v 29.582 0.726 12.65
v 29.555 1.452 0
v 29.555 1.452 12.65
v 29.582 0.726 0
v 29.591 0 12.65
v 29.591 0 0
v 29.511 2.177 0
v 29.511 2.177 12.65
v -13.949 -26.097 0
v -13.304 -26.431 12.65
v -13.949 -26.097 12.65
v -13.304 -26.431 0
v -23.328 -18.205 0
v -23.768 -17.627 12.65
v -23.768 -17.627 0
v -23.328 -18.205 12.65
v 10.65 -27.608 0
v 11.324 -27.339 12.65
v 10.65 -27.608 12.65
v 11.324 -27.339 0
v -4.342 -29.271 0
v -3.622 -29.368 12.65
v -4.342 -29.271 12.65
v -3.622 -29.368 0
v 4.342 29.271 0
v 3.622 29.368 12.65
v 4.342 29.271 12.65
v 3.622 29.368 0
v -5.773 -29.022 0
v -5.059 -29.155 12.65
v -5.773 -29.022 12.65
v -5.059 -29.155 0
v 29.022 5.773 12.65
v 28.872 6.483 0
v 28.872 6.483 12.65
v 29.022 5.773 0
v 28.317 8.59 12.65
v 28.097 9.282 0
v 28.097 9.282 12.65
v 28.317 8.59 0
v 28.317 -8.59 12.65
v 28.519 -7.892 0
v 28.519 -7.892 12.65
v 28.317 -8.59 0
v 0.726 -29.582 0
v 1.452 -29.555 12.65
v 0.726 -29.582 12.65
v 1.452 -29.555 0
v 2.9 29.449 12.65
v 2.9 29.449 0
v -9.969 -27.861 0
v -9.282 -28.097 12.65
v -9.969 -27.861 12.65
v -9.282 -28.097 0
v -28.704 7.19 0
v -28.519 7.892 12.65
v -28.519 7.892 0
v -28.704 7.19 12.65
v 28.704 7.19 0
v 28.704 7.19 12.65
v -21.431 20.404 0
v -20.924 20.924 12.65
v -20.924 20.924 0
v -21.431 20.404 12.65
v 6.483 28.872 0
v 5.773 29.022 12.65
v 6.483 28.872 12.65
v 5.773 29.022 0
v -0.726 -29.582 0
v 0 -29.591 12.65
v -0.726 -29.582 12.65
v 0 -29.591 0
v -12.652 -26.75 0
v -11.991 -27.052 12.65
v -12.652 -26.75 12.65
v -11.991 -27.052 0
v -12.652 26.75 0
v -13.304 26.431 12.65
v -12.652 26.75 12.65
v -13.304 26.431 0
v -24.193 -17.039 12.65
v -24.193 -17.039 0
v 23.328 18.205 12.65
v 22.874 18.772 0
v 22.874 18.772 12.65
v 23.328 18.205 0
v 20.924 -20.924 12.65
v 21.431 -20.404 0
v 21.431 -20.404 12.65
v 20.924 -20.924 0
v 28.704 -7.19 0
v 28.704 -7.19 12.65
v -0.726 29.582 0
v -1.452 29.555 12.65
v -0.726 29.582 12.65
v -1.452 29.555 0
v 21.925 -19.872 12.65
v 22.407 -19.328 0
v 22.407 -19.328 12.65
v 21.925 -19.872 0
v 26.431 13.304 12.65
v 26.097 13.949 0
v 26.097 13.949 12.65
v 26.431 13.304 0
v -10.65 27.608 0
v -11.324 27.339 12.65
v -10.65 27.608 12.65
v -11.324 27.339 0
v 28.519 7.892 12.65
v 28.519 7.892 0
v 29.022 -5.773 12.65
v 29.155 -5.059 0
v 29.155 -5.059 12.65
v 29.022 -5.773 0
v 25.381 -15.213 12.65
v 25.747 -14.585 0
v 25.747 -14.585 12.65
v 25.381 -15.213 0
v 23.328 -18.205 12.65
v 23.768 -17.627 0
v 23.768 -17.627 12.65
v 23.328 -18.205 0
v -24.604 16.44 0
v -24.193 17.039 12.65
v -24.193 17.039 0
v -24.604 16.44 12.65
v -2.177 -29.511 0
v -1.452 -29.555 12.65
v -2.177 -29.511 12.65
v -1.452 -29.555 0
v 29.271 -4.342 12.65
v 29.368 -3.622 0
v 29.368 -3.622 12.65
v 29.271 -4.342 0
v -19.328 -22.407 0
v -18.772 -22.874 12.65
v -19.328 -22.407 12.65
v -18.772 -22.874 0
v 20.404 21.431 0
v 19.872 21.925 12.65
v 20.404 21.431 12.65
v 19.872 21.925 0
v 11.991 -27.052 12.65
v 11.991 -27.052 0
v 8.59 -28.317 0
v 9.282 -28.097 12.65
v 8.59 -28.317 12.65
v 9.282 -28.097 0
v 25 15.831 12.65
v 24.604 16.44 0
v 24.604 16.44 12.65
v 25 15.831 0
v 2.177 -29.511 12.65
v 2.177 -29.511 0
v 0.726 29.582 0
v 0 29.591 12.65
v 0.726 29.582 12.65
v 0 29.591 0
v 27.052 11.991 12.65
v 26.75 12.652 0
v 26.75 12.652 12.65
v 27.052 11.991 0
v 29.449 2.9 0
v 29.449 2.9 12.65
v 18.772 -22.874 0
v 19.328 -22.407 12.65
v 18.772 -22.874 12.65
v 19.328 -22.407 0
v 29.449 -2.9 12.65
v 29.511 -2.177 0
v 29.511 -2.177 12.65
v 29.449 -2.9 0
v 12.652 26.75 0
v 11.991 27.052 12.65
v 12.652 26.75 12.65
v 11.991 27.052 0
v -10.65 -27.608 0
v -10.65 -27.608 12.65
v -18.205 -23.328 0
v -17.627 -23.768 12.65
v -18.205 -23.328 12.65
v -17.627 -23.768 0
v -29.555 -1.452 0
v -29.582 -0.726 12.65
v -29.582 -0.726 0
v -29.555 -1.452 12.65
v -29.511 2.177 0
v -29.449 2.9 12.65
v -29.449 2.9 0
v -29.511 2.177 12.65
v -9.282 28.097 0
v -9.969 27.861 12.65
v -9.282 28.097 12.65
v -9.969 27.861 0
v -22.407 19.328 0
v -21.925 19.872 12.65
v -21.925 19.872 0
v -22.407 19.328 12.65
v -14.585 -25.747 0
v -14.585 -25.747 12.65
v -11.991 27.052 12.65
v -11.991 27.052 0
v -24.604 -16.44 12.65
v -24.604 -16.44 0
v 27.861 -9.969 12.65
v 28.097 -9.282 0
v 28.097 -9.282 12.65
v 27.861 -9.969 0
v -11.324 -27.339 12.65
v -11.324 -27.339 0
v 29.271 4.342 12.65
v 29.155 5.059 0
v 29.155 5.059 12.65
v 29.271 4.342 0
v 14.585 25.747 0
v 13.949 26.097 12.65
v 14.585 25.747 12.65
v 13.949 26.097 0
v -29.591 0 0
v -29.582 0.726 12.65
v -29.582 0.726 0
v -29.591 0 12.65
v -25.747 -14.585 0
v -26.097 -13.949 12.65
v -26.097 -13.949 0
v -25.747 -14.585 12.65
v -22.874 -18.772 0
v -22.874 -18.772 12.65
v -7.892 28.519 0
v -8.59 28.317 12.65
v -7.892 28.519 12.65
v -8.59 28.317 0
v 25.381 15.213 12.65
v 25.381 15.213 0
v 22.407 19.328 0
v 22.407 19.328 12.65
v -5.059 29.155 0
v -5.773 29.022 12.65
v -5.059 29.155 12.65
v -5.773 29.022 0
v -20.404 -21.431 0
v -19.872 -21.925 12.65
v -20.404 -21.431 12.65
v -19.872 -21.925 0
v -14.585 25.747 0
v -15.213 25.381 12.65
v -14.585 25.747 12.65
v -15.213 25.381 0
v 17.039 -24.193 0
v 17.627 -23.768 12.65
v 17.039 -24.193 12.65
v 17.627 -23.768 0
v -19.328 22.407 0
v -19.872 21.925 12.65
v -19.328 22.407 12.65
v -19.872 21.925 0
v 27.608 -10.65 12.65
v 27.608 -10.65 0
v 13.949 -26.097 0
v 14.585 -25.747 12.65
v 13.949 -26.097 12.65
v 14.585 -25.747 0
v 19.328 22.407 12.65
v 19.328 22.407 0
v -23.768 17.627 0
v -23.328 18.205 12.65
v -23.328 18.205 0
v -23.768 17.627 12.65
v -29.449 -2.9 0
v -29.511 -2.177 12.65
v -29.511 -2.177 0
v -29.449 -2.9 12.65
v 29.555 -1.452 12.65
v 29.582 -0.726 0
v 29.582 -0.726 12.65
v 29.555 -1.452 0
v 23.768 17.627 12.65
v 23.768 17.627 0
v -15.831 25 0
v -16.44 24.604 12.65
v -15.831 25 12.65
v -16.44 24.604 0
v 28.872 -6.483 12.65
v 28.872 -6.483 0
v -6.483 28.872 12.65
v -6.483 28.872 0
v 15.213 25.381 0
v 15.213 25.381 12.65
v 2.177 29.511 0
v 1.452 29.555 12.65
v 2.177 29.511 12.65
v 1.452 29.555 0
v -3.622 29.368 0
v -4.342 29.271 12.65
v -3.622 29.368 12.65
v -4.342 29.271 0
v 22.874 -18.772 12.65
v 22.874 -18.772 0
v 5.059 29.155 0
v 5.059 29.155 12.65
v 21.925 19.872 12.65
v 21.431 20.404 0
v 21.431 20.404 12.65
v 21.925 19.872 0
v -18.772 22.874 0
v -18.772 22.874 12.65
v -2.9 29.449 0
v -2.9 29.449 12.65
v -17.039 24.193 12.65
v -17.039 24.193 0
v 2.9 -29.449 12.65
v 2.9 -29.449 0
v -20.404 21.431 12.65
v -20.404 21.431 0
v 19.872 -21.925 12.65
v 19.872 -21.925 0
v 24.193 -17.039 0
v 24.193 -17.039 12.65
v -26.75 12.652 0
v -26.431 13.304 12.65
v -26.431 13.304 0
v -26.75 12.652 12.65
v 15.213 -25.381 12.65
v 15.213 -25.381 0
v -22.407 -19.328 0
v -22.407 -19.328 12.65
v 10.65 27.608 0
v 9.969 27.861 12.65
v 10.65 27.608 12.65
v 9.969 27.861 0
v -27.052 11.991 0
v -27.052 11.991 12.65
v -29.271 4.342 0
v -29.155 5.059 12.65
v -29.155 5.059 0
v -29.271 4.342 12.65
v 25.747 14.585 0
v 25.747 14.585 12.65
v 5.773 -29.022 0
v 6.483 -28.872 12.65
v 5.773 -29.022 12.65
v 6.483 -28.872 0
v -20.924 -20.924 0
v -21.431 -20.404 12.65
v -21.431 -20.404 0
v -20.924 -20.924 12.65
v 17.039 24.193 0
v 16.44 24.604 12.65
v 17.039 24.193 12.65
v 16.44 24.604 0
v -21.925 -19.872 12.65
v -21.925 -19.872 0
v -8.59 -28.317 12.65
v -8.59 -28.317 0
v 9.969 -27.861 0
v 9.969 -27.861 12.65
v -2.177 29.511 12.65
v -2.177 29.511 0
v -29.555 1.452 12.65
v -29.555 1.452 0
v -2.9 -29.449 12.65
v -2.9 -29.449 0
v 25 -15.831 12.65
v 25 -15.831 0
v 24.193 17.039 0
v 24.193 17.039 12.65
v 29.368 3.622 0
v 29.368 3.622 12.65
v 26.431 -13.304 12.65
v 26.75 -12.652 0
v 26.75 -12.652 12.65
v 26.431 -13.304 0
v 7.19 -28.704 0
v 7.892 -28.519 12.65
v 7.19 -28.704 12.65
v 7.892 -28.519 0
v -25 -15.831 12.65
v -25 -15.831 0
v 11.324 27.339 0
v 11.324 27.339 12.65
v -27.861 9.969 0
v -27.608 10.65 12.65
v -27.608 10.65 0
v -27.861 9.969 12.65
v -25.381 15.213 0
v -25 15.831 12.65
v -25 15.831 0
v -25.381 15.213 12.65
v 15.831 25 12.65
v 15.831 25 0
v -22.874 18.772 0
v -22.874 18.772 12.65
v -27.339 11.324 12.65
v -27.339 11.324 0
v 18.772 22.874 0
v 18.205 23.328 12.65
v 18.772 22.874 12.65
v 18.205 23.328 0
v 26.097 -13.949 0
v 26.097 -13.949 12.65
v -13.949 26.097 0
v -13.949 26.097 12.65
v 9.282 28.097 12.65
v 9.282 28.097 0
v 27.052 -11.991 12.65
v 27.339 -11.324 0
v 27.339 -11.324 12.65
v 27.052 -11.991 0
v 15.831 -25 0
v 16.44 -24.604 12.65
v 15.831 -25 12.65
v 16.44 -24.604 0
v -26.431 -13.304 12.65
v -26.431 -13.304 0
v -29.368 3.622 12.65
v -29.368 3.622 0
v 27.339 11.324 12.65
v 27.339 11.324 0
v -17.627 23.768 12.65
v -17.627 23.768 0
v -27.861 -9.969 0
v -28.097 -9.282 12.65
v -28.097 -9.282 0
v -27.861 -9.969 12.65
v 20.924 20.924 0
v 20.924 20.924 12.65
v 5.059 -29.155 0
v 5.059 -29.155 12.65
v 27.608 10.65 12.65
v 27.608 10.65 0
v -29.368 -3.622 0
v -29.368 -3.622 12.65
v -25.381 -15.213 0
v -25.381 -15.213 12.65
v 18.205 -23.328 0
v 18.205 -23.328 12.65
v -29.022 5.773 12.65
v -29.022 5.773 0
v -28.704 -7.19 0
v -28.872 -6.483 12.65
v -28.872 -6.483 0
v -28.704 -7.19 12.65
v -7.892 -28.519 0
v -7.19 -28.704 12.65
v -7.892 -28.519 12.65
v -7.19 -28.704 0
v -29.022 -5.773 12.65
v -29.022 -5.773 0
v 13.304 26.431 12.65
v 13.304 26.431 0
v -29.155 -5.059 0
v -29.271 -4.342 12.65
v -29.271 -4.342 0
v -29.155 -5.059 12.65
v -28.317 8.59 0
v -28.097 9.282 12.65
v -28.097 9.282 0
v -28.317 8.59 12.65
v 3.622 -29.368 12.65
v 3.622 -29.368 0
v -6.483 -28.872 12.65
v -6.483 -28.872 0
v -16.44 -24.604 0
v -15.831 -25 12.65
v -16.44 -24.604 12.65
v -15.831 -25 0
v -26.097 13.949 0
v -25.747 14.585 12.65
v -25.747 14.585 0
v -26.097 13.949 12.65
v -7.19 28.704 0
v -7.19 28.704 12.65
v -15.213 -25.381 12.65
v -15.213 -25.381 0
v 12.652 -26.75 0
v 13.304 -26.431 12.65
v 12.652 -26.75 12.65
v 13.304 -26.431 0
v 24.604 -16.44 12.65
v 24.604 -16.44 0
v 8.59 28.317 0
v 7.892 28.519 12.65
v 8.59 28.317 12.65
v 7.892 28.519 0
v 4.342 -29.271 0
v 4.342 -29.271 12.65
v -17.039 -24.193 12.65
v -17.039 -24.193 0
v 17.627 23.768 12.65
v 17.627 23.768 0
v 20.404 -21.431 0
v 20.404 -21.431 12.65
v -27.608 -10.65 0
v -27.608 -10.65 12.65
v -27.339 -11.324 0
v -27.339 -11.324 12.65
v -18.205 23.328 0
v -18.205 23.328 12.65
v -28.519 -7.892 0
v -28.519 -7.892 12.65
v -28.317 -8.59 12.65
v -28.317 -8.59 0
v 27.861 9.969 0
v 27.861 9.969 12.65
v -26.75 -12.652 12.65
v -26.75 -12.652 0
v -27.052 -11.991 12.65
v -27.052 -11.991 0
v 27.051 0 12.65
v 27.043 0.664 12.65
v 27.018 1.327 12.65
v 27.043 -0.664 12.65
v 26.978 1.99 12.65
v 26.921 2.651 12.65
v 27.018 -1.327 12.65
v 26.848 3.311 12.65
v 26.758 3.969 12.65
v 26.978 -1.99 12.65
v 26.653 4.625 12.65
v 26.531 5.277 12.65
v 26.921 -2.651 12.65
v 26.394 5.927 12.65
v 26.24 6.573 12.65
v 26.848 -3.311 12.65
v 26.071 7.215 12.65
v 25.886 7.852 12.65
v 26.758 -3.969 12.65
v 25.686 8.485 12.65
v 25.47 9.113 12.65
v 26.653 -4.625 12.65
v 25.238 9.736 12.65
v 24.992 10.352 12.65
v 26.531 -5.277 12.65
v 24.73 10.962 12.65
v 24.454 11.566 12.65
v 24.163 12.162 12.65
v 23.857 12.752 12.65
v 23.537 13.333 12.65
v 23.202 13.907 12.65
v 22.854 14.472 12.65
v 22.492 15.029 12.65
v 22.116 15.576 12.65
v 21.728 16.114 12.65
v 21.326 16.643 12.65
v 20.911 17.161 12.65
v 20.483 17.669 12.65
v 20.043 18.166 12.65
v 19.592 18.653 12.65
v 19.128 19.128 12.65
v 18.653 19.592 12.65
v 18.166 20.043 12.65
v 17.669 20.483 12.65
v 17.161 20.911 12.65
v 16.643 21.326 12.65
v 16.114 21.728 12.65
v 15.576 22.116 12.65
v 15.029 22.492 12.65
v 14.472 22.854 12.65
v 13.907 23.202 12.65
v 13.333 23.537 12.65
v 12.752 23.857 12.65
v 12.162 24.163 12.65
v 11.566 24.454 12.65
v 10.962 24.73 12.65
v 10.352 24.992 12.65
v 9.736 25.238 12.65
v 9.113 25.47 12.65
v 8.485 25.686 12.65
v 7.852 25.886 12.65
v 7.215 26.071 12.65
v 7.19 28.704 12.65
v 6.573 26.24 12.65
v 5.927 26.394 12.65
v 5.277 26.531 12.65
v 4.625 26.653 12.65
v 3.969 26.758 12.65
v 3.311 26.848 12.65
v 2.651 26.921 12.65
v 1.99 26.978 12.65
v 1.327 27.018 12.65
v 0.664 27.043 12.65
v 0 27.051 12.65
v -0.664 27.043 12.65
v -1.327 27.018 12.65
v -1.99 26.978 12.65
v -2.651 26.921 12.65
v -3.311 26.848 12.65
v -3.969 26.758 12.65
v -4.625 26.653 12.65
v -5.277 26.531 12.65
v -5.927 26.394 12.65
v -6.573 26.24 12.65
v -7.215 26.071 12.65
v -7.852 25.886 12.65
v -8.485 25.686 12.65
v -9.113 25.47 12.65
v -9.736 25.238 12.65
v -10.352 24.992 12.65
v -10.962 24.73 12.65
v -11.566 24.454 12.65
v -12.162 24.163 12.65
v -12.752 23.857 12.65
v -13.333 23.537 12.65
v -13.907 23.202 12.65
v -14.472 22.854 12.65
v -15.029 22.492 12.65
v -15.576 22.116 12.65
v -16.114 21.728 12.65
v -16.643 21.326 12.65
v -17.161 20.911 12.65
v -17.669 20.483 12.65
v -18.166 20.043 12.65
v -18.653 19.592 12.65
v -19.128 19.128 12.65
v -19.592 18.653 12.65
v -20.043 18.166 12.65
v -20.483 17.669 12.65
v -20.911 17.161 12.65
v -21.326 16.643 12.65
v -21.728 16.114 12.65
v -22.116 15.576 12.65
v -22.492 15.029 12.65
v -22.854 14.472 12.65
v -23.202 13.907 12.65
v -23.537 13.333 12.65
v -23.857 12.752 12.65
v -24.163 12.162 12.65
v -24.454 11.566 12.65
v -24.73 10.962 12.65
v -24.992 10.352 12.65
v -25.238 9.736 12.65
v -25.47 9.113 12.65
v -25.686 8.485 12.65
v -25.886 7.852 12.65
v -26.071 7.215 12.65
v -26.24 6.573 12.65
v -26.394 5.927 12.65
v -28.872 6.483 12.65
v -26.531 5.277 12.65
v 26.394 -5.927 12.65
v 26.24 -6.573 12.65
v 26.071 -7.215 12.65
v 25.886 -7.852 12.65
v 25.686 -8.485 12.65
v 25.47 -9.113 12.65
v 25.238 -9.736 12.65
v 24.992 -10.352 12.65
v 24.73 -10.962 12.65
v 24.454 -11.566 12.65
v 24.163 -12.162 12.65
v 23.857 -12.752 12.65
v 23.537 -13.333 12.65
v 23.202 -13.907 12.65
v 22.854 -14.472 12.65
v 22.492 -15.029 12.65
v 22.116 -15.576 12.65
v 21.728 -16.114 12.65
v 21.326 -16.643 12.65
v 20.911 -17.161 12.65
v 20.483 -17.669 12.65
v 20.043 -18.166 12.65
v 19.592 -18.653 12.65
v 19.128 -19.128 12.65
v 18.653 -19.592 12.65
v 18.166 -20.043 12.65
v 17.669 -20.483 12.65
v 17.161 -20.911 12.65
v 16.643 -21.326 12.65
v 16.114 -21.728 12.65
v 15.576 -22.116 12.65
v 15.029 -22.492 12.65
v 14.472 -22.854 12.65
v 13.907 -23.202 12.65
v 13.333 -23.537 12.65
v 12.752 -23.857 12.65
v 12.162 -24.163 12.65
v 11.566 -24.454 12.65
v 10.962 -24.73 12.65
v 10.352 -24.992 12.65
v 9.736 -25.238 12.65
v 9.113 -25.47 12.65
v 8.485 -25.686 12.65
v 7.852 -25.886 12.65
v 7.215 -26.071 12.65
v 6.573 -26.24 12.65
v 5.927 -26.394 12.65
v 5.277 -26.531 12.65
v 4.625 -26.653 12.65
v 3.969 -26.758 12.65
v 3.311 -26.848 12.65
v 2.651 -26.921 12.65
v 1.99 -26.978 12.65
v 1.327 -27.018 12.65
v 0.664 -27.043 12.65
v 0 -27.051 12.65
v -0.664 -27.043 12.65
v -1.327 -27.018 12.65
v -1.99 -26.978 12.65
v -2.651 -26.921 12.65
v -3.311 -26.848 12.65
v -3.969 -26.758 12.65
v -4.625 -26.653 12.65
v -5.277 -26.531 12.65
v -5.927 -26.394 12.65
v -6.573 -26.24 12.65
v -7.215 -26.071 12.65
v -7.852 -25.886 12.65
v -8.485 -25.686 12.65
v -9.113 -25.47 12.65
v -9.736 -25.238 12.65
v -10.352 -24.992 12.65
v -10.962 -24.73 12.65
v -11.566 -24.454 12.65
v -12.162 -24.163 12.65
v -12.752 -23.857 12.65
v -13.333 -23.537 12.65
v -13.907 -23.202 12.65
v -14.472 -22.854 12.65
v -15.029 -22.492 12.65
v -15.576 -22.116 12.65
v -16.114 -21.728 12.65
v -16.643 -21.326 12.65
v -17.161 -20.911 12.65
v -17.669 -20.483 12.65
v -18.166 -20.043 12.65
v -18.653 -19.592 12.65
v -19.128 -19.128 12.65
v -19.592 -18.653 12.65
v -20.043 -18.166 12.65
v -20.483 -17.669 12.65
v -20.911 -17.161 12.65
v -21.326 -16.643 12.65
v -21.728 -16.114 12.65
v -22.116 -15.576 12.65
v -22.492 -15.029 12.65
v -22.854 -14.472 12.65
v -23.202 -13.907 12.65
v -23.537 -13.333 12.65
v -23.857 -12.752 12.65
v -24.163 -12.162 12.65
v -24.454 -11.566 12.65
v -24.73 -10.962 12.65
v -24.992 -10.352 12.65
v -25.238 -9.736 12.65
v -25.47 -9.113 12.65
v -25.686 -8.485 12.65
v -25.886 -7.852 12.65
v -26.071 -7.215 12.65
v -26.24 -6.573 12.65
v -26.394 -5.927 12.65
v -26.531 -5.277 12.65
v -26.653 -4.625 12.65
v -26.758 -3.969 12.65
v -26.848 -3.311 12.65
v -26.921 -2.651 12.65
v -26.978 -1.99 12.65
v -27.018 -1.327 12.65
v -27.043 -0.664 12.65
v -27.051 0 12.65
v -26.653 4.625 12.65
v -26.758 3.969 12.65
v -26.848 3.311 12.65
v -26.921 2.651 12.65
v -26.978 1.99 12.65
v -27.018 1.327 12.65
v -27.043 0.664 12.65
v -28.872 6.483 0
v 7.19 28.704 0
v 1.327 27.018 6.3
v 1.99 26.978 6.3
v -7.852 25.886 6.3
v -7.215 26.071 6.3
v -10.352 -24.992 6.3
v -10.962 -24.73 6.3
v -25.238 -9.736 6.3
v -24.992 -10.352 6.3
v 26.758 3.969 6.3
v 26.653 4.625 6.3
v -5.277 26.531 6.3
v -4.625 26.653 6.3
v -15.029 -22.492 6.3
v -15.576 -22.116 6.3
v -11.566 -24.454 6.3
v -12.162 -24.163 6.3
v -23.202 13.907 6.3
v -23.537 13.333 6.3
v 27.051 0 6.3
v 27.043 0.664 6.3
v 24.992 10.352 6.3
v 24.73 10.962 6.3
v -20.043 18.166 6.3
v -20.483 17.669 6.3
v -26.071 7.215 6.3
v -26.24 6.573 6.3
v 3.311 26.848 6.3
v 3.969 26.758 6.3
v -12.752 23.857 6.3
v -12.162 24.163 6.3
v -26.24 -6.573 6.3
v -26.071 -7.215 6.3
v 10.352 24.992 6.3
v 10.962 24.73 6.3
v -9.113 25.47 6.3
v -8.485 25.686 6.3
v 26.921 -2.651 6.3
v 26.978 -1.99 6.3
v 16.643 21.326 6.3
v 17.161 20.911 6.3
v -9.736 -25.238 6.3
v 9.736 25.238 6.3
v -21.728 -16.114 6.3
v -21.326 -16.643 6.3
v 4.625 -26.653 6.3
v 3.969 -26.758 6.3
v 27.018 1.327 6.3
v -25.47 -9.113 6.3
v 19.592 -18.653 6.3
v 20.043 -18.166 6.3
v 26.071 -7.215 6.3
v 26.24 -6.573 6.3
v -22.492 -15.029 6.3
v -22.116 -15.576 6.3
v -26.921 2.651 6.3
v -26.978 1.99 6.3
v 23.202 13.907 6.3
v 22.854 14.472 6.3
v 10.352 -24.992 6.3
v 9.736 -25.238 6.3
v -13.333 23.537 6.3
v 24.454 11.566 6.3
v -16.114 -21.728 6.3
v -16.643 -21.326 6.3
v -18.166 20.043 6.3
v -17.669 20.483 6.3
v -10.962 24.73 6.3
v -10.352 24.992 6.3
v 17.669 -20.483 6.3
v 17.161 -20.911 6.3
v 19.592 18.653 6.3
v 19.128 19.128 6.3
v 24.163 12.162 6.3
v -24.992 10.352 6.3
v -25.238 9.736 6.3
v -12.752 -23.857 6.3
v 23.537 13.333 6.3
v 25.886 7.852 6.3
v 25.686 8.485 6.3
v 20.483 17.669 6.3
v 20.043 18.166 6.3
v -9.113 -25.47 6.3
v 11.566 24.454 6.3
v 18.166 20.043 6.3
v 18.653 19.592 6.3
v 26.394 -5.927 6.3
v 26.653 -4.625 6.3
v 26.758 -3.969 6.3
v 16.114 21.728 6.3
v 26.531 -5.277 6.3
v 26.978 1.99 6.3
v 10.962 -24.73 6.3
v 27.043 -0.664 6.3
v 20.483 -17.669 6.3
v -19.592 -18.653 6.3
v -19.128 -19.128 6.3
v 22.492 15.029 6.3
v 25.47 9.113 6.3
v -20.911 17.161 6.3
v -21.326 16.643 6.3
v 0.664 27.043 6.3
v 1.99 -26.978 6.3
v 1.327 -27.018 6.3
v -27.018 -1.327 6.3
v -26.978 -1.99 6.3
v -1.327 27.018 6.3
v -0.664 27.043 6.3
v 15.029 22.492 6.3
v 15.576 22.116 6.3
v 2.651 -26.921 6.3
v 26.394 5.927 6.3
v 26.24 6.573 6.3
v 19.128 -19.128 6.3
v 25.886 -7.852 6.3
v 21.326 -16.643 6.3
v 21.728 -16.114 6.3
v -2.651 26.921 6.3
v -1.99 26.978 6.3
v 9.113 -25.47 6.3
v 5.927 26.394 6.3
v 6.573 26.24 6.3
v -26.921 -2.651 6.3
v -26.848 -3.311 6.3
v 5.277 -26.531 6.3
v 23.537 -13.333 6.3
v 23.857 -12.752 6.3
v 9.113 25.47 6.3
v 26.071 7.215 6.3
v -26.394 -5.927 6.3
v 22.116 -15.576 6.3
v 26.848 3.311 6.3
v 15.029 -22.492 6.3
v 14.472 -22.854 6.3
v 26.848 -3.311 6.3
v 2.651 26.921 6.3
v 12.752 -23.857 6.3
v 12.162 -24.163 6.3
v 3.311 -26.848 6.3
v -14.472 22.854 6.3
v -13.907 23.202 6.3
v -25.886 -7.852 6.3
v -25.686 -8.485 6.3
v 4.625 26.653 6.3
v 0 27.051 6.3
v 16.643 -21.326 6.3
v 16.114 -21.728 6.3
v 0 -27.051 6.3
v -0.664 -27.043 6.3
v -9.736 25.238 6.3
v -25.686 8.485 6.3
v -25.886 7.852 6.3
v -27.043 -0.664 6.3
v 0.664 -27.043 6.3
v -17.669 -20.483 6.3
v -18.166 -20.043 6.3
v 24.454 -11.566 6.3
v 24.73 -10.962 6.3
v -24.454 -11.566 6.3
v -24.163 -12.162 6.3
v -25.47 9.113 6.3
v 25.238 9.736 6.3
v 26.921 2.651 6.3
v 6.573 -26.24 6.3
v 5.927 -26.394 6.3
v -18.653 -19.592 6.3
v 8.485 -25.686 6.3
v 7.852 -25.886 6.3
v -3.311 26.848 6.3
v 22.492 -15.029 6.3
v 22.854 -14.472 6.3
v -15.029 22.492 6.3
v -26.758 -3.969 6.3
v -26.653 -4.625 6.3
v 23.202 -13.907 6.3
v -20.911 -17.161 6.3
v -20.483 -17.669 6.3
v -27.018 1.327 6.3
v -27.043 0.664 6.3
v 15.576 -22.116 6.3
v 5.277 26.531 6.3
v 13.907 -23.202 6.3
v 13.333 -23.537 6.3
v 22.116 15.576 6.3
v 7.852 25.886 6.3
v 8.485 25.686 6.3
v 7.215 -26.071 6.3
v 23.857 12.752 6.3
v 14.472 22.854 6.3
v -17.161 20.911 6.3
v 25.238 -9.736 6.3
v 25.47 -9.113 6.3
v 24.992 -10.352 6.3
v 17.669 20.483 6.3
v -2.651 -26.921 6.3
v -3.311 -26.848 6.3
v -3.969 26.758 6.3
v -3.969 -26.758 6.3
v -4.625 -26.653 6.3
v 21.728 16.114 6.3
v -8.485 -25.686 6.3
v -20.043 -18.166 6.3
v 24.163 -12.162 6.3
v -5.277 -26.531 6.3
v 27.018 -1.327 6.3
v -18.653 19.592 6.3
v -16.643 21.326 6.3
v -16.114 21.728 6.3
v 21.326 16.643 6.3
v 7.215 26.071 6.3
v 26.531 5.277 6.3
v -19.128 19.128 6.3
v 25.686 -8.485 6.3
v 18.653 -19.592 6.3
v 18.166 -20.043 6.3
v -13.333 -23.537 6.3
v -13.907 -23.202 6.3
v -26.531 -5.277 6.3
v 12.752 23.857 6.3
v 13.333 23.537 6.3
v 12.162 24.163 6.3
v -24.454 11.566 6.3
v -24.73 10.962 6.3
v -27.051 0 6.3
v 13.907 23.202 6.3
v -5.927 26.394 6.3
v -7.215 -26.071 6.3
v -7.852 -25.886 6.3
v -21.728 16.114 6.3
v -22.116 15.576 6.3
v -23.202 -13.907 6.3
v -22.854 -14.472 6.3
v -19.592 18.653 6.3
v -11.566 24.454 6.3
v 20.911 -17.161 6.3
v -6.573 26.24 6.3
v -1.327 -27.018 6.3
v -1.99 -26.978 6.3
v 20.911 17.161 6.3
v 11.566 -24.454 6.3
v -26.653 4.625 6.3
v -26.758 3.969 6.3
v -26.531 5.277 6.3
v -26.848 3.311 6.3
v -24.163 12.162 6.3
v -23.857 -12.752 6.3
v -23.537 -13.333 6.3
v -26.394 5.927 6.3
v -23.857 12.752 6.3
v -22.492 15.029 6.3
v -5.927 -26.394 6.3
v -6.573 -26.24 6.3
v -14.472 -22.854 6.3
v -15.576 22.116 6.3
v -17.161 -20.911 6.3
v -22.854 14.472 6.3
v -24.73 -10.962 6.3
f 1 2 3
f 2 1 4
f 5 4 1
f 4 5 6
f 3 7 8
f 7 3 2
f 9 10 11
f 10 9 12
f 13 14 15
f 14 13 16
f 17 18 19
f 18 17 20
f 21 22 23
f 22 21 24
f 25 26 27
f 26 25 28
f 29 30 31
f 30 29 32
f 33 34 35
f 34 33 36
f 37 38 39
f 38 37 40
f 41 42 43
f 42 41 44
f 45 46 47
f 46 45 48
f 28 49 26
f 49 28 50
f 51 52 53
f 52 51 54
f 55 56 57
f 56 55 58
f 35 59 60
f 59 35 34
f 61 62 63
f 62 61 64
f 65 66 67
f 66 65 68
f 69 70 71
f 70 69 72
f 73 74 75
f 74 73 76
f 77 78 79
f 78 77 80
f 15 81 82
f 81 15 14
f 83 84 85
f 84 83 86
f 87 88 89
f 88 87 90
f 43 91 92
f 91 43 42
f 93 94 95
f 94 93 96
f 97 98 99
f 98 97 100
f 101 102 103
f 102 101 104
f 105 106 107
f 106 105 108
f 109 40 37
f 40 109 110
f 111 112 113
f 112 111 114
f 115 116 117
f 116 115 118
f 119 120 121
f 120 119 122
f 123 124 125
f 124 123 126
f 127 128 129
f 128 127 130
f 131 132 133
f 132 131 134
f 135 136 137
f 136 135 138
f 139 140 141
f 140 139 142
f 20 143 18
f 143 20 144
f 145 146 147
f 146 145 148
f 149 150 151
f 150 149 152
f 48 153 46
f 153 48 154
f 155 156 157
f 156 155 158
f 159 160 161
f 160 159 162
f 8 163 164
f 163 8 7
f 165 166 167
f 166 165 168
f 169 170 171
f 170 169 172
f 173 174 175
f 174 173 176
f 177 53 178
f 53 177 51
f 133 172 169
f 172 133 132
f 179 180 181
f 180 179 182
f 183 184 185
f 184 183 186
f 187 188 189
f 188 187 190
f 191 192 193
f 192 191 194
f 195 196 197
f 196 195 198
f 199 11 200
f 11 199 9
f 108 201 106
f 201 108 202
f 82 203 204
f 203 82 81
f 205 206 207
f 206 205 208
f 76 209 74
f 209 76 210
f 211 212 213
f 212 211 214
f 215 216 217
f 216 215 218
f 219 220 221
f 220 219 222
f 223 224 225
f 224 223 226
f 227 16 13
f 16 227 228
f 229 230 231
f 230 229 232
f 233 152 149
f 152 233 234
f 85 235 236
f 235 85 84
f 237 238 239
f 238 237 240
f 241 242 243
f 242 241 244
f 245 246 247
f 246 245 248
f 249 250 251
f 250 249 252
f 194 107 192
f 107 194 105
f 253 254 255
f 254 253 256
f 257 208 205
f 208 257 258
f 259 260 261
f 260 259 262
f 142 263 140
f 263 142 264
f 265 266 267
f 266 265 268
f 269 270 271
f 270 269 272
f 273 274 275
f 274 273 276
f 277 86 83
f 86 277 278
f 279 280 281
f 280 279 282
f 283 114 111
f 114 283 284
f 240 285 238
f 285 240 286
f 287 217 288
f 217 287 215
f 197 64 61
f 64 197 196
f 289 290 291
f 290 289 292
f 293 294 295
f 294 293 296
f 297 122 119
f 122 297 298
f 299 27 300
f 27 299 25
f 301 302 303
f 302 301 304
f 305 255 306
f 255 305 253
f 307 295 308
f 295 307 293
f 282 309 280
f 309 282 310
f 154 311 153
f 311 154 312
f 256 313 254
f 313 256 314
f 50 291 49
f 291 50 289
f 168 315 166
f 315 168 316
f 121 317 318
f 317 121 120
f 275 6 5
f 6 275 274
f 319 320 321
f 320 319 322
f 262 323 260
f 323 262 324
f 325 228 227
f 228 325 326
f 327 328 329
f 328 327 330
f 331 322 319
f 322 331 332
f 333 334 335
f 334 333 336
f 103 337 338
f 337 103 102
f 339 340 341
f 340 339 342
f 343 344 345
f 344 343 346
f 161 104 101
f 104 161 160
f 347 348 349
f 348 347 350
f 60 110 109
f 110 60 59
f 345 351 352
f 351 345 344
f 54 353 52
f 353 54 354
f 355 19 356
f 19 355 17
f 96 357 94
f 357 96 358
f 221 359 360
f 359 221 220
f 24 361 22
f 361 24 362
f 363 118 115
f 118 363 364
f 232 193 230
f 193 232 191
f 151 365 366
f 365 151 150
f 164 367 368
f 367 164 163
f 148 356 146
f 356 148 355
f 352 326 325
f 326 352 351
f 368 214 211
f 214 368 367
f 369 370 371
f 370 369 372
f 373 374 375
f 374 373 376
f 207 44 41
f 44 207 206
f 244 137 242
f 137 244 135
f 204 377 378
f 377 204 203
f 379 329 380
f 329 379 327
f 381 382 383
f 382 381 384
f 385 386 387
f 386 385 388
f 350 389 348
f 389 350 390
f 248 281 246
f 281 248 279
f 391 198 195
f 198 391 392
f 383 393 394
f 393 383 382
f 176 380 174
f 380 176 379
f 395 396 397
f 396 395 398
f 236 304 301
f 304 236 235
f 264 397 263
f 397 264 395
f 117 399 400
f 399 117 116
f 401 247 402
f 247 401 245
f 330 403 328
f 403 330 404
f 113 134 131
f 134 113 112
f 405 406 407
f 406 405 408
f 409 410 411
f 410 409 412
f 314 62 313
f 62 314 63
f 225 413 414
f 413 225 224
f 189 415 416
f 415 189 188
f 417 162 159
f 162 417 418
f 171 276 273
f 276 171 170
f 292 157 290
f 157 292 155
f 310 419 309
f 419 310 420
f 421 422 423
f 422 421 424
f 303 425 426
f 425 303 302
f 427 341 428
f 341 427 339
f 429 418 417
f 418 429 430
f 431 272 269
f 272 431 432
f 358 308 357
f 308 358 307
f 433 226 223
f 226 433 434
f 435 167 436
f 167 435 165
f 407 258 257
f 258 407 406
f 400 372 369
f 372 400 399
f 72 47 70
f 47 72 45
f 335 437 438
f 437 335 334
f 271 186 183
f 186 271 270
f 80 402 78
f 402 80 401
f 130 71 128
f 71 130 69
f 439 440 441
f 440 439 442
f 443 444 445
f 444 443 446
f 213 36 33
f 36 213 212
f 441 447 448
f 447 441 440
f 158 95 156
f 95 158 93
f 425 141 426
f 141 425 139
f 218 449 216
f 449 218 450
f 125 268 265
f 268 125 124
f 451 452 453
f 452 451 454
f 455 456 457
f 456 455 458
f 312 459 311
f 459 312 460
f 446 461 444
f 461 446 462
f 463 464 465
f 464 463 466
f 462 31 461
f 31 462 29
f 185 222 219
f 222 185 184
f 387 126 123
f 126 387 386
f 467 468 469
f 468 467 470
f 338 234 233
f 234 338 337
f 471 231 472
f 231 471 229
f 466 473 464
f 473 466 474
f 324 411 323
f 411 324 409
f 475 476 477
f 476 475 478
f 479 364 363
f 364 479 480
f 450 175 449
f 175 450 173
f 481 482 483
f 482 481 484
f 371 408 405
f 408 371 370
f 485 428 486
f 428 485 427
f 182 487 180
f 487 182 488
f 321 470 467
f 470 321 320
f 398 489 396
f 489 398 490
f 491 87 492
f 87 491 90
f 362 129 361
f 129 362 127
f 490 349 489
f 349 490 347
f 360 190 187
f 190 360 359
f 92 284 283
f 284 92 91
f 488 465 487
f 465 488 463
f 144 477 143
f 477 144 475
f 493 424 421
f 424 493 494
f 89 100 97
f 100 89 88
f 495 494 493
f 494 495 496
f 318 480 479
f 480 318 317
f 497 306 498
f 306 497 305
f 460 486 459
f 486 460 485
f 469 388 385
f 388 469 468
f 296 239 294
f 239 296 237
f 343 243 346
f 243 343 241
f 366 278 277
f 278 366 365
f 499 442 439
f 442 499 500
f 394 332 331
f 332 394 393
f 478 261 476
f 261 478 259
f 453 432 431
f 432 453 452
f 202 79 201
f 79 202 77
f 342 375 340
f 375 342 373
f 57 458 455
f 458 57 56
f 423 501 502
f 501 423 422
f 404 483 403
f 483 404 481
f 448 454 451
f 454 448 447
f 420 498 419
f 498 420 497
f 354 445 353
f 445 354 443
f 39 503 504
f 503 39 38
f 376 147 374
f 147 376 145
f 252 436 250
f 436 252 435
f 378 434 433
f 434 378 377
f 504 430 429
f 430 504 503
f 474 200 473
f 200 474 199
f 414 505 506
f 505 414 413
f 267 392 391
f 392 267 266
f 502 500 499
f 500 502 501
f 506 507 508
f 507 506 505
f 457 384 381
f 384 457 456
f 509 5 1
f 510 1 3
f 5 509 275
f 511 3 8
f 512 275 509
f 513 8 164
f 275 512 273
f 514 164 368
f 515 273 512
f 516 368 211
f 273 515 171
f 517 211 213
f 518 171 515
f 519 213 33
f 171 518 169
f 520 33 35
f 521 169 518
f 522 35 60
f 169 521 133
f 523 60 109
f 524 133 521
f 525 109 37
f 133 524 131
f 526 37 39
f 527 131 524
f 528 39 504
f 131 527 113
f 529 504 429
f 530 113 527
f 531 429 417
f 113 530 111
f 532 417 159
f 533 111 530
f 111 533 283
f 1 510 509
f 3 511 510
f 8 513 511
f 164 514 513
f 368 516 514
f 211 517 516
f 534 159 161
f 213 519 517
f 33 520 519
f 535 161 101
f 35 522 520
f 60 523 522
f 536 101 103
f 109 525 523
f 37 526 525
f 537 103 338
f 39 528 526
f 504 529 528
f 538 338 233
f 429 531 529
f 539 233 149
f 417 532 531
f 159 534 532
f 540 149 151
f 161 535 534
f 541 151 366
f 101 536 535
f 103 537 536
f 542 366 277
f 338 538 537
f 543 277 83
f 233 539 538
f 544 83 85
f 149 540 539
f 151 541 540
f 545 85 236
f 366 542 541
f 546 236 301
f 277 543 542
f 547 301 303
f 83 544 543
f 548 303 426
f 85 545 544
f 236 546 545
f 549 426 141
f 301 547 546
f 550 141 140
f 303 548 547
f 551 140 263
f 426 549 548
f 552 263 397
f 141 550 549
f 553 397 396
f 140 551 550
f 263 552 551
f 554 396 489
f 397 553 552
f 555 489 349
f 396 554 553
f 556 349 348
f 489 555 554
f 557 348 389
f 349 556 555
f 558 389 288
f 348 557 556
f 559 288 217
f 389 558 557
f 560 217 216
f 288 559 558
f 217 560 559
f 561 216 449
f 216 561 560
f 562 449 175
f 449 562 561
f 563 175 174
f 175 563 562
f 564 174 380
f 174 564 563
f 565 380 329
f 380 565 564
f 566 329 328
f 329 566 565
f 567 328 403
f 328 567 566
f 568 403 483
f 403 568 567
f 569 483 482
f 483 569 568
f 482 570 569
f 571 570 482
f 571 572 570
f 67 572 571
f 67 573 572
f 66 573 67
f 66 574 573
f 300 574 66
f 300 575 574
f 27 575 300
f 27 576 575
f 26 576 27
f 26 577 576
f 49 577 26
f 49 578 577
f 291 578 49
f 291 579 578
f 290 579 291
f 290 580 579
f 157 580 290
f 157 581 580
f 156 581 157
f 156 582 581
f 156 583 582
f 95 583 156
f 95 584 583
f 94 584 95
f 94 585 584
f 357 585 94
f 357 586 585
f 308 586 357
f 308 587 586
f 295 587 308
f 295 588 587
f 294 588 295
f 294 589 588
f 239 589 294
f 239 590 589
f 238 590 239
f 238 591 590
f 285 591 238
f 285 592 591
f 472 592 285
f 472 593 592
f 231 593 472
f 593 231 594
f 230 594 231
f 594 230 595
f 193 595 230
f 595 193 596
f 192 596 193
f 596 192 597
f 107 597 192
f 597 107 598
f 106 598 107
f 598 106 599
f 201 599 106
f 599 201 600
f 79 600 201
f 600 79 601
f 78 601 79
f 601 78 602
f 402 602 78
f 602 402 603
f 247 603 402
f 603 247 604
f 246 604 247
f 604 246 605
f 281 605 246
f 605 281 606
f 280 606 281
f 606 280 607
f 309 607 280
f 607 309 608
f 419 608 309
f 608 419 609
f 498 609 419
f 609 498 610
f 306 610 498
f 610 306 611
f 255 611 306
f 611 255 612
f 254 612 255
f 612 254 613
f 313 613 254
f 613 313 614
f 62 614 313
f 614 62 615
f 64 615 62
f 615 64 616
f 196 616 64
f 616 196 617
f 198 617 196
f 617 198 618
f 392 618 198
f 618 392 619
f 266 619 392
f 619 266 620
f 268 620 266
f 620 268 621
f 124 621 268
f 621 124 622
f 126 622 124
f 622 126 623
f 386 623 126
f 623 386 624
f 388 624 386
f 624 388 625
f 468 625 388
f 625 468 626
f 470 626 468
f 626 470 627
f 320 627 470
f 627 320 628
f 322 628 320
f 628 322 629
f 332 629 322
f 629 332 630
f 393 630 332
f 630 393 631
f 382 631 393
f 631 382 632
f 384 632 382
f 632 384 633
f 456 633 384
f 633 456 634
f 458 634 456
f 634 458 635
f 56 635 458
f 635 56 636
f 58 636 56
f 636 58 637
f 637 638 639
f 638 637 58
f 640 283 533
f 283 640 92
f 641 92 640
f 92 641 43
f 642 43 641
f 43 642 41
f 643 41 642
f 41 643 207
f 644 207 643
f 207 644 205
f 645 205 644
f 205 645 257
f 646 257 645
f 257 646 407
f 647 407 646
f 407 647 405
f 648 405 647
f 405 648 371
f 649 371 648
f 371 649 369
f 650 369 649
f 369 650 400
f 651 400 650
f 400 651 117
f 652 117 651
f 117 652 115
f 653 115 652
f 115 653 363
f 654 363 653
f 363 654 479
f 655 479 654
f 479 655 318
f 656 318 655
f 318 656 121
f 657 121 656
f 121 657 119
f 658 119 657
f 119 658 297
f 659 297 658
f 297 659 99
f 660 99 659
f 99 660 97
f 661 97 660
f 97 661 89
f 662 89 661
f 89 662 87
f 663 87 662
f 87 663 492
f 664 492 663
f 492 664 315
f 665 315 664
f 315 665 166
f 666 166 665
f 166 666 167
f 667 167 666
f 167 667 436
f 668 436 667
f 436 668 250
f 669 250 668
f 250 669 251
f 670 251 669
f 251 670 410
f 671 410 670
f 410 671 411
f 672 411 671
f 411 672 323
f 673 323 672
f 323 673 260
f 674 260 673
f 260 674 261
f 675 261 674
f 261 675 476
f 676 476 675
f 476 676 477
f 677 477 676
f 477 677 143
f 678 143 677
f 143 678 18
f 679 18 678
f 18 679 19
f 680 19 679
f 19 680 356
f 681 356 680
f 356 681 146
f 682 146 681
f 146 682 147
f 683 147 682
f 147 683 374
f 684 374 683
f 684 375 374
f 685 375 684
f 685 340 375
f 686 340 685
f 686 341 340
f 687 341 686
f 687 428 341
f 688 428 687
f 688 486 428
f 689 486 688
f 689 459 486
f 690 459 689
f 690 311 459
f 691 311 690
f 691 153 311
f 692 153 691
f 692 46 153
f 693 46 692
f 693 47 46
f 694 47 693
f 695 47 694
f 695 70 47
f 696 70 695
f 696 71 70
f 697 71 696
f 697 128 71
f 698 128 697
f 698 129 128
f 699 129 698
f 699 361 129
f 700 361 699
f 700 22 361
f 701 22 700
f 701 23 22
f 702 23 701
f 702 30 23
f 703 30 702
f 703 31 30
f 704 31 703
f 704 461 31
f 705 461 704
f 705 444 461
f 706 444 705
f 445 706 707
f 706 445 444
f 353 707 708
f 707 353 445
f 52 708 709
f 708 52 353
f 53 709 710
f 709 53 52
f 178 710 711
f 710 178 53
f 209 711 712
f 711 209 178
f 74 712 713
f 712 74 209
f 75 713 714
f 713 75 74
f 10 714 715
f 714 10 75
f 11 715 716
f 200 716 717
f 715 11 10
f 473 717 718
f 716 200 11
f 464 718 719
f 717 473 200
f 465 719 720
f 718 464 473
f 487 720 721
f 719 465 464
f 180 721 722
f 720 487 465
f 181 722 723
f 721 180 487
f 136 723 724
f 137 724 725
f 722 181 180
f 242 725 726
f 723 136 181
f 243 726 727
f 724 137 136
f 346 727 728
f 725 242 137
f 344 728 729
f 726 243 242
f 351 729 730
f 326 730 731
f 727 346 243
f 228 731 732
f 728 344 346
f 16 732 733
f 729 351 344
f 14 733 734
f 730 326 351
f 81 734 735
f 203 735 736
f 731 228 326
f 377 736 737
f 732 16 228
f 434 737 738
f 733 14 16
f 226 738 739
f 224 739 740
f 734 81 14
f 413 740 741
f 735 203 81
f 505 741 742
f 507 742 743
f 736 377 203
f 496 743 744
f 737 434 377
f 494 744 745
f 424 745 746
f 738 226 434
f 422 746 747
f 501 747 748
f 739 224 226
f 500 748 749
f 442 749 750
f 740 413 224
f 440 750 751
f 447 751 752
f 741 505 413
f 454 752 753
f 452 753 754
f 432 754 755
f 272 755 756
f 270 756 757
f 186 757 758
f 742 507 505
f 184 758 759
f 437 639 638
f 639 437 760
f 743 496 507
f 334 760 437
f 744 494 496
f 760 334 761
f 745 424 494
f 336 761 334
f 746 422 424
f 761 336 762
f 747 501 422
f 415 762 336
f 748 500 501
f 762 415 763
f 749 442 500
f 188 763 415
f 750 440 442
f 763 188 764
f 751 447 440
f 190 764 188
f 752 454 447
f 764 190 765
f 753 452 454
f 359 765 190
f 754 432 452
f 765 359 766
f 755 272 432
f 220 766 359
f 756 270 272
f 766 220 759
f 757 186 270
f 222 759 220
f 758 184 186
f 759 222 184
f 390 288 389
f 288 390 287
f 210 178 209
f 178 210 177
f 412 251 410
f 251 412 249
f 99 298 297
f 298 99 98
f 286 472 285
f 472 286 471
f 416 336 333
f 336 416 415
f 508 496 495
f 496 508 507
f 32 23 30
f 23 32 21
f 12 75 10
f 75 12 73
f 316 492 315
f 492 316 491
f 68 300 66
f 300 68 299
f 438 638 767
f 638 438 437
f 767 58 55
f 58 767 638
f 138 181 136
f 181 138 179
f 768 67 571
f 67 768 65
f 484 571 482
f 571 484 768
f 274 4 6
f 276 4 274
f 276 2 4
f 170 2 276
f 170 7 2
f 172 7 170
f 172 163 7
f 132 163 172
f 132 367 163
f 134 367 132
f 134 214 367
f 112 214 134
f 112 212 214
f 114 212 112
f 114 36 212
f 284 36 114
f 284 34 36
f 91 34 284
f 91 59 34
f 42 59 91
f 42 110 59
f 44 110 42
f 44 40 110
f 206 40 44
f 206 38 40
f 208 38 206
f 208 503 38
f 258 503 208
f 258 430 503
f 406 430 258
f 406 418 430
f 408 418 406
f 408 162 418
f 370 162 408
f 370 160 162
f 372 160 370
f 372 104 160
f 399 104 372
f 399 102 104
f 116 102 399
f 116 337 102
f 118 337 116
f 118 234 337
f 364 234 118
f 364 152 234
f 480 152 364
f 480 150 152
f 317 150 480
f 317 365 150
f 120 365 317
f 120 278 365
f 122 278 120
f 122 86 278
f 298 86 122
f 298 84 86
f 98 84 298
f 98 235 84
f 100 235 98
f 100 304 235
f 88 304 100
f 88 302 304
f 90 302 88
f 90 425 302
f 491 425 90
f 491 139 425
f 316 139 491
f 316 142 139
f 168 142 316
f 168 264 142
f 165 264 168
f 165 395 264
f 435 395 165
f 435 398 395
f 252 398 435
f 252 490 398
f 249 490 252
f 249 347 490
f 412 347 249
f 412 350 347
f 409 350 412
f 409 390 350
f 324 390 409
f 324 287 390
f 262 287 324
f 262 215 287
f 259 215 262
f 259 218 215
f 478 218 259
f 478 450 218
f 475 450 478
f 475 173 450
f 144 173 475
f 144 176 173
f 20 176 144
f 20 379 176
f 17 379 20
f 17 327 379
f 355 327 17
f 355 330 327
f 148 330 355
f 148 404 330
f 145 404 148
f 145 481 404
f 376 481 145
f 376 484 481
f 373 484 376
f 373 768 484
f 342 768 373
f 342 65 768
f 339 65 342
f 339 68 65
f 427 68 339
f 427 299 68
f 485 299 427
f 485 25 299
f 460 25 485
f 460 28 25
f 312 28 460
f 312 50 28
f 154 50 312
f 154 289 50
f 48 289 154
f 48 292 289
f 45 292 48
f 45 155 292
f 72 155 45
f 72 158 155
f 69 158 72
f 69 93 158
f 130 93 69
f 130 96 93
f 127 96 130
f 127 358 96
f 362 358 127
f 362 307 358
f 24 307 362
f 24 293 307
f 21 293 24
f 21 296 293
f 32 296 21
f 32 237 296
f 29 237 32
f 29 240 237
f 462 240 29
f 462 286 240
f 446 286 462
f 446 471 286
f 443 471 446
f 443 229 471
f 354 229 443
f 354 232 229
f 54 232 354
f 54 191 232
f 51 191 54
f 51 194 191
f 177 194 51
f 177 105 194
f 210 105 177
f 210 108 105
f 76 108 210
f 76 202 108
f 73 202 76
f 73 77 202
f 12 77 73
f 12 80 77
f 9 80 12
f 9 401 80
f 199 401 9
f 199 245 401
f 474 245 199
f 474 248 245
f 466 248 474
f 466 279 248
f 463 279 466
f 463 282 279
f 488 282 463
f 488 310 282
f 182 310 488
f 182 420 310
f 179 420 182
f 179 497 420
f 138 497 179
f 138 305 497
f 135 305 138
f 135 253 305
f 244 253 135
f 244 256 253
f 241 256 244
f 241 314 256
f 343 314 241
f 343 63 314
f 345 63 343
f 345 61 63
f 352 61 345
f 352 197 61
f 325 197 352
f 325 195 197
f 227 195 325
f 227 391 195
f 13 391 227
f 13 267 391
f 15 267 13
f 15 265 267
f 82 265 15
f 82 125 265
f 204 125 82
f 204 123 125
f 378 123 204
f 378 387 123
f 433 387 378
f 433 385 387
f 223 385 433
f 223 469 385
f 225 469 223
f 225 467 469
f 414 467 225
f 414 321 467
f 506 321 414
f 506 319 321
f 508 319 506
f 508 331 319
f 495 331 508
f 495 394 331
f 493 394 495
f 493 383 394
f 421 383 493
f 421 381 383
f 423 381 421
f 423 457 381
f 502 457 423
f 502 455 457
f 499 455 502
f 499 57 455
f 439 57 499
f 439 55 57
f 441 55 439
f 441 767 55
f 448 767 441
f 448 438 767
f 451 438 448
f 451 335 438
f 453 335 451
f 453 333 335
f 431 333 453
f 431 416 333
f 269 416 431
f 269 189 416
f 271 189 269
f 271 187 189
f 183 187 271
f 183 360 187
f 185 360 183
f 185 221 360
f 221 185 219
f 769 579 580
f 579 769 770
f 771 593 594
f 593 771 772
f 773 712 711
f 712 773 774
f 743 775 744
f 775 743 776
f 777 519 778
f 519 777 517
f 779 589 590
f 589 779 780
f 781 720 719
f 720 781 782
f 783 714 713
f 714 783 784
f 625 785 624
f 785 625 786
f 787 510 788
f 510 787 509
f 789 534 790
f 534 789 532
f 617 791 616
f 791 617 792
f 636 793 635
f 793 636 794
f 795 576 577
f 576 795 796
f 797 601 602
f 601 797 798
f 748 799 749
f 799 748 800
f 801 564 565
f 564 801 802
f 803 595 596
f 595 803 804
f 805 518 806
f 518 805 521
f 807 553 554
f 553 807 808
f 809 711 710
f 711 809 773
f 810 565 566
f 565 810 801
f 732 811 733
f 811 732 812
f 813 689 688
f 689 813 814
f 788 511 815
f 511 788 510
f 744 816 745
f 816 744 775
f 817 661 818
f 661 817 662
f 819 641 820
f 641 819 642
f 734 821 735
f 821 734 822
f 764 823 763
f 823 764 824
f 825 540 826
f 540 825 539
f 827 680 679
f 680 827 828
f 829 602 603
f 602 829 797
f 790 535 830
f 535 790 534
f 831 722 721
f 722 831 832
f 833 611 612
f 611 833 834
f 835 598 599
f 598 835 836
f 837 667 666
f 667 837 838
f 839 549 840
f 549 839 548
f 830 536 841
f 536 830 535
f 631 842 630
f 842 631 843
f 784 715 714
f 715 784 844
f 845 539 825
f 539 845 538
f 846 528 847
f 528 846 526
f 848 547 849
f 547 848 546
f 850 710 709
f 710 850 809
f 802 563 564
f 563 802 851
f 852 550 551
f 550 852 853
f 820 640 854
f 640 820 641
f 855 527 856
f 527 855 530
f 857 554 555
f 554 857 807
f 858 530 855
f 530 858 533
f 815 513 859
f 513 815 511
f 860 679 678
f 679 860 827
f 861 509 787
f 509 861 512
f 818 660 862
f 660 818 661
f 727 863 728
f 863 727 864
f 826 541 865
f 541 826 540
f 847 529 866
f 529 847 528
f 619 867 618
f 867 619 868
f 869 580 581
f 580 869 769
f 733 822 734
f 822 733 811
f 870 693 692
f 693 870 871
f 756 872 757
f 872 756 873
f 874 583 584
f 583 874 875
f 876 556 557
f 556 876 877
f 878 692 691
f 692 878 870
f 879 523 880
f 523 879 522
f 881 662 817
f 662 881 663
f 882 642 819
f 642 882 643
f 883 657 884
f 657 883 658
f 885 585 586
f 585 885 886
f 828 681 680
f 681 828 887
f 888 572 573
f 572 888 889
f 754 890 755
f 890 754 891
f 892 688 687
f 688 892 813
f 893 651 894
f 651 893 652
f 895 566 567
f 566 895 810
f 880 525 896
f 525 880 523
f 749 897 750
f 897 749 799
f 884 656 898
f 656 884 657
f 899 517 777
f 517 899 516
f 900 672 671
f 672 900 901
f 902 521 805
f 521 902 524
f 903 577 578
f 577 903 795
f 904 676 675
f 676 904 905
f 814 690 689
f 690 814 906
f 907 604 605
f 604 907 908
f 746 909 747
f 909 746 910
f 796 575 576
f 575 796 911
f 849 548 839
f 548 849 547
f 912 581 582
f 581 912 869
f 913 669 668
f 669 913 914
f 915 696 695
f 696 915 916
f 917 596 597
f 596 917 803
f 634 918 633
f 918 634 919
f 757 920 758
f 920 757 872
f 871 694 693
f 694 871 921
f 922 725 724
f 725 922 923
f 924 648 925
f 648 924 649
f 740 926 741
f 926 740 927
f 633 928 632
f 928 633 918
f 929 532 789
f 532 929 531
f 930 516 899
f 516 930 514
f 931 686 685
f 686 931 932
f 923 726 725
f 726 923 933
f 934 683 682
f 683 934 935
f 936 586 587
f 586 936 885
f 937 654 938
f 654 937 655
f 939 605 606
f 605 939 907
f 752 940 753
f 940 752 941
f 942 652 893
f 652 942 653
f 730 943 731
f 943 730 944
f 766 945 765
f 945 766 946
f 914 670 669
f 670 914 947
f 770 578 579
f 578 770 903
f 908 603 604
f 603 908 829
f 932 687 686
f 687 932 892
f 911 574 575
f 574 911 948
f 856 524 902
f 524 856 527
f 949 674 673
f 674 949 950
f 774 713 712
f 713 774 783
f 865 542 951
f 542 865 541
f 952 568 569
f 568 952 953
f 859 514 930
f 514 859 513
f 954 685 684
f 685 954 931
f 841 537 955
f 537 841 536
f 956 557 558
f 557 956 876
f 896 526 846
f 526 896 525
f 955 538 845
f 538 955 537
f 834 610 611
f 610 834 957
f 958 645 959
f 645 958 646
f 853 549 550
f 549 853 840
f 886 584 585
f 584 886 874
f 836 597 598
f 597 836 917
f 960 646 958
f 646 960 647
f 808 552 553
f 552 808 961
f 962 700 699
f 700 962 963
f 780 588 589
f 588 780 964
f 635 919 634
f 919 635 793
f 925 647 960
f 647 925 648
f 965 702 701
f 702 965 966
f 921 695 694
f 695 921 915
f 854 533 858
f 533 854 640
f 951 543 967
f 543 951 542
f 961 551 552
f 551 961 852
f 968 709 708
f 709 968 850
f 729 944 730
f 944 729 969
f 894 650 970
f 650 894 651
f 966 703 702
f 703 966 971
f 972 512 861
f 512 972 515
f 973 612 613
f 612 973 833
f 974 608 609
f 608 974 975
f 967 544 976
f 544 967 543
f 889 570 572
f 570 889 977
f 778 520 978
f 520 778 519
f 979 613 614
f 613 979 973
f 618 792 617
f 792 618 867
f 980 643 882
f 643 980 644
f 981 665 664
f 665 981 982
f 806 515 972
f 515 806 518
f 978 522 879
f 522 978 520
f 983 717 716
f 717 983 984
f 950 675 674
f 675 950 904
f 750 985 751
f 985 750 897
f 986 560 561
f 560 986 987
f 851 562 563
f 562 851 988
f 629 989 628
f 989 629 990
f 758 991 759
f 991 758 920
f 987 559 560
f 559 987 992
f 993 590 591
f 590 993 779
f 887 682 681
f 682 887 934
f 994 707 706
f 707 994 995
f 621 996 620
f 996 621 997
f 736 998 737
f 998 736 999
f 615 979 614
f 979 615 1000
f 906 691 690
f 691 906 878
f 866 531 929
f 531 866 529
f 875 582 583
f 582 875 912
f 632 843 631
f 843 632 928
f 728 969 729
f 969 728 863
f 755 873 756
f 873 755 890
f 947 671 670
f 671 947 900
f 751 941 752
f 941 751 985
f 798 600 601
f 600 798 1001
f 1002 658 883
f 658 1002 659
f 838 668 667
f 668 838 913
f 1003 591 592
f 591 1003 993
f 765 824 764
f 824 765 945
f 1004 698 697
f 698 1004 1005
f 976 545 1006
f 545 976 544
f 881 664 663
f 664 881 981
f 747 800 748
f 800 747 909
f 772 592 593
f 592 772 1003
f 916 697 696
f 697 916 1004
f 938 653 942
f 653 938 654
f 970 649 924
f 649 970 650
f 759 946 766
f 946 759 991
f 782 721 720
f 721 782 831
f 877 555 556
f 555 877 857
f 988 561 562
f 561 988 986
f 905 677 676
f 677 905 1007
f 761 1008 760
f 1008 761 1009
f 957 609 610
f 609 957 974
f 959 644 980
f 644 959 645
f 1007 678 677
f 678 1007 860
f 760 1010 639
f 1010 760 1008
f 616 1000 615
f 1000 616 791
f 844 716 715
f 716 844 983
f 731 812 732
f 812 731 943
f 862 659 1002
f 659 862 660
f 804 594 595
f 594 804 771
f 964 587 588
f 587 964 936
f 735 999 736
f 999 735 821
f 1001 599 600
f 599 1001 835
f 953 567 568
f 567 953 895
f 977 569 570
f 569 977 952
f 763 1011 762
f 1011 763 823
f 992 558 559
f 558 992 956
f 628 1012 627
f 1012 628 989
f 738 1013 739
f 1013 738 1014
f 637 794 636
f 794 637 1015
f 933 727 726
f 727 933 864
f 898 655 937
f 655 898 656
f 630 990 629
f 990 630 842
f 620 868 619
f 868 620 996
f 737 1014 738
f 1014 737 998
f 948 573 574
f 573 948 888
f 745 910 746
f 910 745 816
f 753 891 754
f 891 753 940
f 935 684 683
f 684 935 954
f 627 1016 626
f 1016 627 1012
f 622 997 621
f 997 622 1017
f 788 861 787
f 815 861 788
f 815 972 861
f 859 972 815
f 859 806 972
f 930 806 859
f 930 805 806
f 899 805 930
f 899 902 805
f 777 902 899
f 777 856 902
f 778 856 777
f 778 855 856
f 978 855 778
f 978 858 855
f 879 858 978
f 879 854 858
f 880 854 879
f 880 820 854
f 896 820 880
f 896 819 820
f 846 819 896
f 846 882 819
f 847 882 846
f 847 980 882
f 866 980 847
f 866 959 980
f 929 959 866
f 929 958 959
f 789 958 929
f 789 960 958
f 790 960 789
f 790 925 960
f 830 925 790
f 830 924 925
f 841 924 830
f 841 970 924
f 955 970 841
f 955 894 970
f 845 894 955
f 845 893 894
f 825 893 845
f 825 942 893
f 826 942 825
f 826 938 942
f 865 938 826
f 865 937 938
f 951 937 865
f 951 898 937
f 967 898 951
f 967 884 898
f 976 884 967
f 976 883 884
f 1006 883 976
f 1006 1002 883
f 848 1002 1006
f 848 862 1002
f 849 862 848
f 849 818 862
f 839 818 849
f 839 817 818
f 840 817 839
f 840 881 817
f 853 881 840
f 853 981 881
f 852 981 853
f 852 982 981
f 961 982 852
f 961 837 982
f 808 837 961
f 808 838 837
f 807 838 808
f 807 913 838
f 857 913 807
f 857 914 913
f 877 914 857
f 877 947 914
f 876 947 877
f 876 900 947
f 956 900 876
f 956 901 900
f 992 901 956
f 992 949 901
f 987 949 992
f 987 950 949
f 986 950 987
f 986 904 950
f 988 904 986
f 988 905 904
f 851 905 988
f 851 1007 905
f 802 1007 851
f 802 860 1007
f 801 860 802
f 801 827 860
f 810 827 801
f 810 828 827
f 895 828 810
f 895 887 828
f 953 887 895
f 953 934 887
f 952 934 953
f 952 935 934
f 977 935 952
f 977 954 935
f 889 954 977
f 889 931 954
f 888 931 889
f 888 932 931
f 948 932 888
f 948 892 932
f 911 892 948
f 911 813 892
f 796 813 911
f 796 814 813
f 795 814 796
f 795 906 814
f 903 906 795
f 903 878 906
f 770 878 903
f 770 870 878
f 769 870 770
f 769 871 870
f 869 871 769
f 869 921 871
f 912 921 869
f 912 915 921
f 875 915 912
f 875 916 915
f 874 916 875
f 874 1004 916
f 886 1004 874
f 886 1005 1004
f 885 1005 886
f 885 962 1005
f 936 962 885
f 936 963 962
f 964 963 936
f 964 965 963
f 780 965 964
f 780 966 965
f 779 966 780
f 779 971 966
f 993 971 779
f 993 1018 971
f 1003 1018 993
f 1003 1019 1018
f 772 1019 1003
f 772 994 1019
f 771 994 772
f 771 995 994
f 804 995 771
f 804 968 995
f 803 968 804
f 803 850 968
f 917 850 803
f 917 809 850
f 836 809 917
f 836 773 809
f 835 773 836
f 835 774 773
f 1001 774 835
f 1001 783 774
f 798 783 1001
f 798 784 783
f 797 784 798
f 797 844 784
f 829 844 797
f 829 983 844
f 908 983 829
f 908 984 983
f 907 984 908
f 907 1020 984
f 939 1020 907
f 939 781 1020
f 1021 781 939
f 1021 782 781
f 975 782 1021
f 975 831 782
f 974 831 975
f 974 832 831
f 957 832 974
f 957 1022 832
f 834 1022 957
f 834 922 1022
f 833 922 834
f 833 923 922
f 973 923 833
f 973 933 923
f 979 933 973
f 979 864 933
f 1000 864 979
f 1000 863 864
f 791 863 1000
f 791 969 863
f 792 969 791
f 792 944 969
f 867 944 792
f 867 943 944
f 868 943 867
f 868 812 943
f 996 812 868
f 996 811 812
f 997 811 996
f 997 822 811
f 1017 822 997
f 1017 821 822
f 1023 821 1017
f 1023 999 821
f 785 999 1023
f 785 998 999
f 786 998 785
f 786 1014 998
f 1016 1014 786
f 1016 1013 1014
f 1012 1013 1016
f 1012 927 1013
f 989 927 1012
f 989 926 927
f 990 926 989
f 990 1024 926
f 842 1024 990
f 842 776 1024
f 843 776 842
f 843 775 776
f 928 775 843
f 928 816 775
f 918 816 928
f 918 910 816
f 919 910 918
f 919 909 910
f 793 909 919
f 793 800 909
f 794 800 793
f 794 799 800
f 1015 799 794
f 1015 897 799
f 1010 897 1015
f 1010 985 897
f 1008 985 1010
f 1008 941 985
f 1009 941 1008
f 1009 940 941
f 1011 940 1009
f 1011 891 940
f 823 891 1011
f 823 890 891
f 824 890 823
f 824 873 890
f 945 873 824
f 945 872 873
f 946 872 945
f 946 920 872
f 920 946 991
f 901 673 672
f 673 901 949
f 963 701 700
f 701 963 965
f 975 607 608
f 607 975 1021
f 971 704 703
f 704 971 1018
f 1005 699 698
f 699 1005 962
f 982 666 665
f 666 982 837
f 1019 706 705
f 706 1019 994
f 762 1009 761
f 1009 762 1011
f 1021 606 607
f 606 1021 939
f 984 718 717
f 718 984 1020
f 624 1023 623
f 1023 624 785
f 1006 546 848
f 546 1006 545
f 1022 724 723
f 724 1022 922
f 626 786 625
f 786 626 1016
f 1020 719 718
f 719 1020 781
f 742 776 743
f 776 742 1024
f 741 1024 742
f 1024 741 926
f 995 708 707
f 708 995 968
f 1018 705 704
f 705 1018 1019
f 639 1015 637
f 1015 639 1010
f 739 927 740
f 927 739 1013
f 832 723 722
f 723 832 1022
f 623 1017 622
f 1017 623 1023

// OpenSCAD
/* [Model Resolution (All dimensions are in Millimeters)] */
$fn = 256;

/* [Cylinder Properties (Inside Diameter)] */
Diameter = 54.102;
Height = 6.35;
Wall_Thickness = 2.54;
Floor_Thickness = 6.3;

/* [Screw Hole Properties] */
Screw_Hole_On = false;
Screw_Hole_Diameter = 5.08;
Chamfer_Adjust = 3.5; 

// Outside Dimensions
difference() { 
 cylinder(
   h=Height+Floor_Thickness,
   d=(Diameter+(Wall_Thickness*2)),
   center=false
  );
  // Inside Dimensions
  translate([0,0,Floor_Thickness])
  cylinder(
   Height+Floor_Thickness,
   d=Diameter,
   center=false
  );
  if(Screw_Hole_On==true) {
    // Screw Hole
    translate([0,0,-Floor_Thickness])
    cylinder(
      h=Floor_Thickness+30,
      d=Screw_Hole_Diameter,
      center=false
    );
    // Chamfer
    translate([0,0,Floor_Thickness-Chamfer_Adjust])
    cylinder(
      h=Screw_Hole_Diameter,
      d1=Screw_Hole_Diameter,
      d2=Screw_Hole_Diameter*2,
      center=false
    );

  }
  
};
